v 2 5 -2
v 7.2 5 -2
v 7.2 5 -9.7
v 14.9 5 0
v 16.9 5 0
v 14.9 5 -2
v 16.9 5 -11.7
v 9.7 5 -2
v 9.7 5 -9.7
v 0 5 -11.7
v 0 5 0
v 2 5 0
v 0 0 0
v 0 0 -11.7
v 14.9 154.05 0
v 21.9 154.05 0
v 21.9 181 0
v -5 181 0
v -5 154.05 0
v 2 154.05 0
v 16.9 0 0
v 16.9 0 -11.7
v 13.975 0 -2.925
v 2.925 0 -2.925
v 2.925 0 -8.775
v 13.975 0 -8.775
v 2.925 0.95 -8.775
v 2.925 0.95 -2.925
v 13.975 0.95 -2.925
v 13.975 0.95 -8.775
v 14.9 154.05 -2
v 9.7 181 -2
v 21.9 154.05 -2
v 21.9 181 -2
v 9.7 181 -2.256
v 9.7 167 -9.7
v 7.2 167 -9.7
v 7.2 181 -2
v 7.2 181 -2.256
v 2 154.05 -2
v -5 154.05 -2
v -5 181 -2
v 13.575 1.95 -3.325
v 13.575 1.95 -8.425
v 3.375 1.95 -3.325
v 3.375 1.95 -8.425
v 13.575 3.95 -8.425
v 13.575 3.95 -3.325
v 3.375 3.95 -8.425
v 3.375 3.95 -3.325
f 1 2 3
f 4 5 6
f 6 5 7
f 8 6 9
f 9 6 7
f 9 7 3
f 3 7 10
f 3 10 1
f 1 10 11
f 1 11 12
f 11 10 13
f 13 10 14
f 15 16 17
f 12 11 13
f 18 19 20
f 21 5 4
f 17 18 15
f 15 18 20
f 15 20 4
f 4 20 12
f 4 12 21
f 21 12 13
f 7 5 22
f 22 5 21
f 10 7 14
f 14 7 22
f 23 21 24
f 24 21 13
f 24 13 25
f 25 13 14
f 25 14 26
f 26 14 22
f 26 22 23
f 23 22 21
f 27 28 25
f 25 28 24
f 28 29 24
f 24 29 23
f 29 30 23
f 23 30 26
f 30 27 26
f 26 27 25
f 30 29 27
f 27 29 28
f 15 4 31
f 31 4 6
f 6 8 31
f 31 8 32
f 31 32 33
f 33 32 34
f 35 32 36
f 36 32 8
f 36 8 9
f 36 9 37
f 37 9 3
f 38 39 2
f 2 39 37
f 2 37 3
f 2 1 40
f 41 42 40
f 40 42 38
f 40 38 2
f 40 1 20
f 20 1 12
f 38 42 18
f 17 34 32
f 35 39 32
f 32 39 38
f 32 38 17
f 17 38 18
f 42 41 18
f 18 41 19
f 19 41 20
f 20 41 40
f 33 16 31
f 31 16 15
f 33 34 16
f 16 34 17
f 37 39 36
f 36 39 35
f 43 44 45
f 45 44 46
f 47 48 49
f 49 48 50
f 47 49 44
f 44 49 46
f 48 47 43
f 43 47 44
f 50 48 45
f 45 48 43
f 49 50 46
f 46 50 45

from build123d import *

# Parameters (mm, degrees)
SKETCH1_W           = 16.9
SKETCH1_H           = 11.7
BOSS_EXTRUDE1_DEPTH = 5
SKETCH2_W           = 11.05
SKETCH2_H           = 5.85
CUT_EXTRUDE1_DEPTH  = 0.95
SKETCH3_W           = 10.2
SKETCH3_H           = 5.1
CUT_EXTRUDE2_DEPTH  = 3
SKETCH4_W           = 10.2
SKETCH4_H           = 5.1
BOSS_EXTRUDE2_DEPTH = 1
BOSS_EXTRUDE3_DEPTH = 176
SKETCH6_W           = 26.9
SKETCH6_H           = 26.95
BOSS_EXTRUDE4_DEPTH = 2
CHAMFER1_SIZE       = 14
CHAMFER1_SIZE2      = 7.443932043


with BuildPart() as part:
    # Sketch1 → Boss-Extrude1 (new body)
    with BuildSketch(Plane(origin=(0, 0, 0), x_dir=(1, 0, 0), z_dir=(0, 1, 0))):
        with Locations((8.45, 5.85)):
            Rectangle(SKETCH1_W, SKETCH1_H)
    extrude(amount=BOSS_EXTRUDE1_DEPTH)

    # Sketch2 → Cut-Extrude1 (cut)
    with BuildSketch(Plane.XZ):
        with Locations((8.45, -5.85)):
            Rectangle(SKETCH2_W, SKETCH2_H)
    extrude(amount=-CUT_EXTRUDE1_DEPTH, mode=Mode.SUBTRACT)

    # Sketch3 → Cut-Extrude2 (cut)
    with BuildSketch(Plane.XZ.offset(-0.95)):
        with Locations((8.475, -5.875)):
            Rectangle(SKETCH3_W, SKETCH3_H)
    extrude(amount=-CUT_EXTRUDE2_DEPTH, mode=Mode.SUBTRACT)

    # Sketch4 → Boss-Extrude2 (add)
    with BuildSketch(Plane.XZ.offset(-0.95)):
        with Locations((8.475, -5.875)):
            Rectangle(SKETCH4_W, SKETCH4_H)
    extrude(amount=-BOSS_EXTRUDE2_DEPTH)

    # Sketch5 → Boss-Extrude3 (add)
    with BuildSketch(Plane(origin=(0, 5, 0), x_dir=(1, 0, 0), z_dir=(0, 1, 0))):
        Polygon((2, 0), (2, 2), (7.2, 2), (7.2, 9.7), (9.7, 9.7), (9.7, 2), (14.9, 2), (14.9, 0), align=None)
    extrude(amount=BOSS_EXTRUDE3_DEPTH)

    # Sketch6 → Boss-Extrude4 (add)
    with BuildSketch(Plane.XY):
        with Locations((8.45, 167.525)):
            Rectangle(SKETCH6_W, SKETCH6_H)
    extrude(amount=-BOSS_EXTRUDE4_DEPTH)

    # Chamfer1
    chamfer1_edges = [part.edges().sort_by_distance(p)[0] for p in [
        (8.45, 181, -9.7),
    ]]
    chamfer1_side = [part.faces().sort_by_distance(p)[0] for p in [
        (8.45, 93, -9.7),
    ]]
    chamfer(chamfer1_edges, length=CHAMFER1_SIZE, length2=CHAMFER1_SIZE2, reference=chamfer1_side[0])


solid = part.part
